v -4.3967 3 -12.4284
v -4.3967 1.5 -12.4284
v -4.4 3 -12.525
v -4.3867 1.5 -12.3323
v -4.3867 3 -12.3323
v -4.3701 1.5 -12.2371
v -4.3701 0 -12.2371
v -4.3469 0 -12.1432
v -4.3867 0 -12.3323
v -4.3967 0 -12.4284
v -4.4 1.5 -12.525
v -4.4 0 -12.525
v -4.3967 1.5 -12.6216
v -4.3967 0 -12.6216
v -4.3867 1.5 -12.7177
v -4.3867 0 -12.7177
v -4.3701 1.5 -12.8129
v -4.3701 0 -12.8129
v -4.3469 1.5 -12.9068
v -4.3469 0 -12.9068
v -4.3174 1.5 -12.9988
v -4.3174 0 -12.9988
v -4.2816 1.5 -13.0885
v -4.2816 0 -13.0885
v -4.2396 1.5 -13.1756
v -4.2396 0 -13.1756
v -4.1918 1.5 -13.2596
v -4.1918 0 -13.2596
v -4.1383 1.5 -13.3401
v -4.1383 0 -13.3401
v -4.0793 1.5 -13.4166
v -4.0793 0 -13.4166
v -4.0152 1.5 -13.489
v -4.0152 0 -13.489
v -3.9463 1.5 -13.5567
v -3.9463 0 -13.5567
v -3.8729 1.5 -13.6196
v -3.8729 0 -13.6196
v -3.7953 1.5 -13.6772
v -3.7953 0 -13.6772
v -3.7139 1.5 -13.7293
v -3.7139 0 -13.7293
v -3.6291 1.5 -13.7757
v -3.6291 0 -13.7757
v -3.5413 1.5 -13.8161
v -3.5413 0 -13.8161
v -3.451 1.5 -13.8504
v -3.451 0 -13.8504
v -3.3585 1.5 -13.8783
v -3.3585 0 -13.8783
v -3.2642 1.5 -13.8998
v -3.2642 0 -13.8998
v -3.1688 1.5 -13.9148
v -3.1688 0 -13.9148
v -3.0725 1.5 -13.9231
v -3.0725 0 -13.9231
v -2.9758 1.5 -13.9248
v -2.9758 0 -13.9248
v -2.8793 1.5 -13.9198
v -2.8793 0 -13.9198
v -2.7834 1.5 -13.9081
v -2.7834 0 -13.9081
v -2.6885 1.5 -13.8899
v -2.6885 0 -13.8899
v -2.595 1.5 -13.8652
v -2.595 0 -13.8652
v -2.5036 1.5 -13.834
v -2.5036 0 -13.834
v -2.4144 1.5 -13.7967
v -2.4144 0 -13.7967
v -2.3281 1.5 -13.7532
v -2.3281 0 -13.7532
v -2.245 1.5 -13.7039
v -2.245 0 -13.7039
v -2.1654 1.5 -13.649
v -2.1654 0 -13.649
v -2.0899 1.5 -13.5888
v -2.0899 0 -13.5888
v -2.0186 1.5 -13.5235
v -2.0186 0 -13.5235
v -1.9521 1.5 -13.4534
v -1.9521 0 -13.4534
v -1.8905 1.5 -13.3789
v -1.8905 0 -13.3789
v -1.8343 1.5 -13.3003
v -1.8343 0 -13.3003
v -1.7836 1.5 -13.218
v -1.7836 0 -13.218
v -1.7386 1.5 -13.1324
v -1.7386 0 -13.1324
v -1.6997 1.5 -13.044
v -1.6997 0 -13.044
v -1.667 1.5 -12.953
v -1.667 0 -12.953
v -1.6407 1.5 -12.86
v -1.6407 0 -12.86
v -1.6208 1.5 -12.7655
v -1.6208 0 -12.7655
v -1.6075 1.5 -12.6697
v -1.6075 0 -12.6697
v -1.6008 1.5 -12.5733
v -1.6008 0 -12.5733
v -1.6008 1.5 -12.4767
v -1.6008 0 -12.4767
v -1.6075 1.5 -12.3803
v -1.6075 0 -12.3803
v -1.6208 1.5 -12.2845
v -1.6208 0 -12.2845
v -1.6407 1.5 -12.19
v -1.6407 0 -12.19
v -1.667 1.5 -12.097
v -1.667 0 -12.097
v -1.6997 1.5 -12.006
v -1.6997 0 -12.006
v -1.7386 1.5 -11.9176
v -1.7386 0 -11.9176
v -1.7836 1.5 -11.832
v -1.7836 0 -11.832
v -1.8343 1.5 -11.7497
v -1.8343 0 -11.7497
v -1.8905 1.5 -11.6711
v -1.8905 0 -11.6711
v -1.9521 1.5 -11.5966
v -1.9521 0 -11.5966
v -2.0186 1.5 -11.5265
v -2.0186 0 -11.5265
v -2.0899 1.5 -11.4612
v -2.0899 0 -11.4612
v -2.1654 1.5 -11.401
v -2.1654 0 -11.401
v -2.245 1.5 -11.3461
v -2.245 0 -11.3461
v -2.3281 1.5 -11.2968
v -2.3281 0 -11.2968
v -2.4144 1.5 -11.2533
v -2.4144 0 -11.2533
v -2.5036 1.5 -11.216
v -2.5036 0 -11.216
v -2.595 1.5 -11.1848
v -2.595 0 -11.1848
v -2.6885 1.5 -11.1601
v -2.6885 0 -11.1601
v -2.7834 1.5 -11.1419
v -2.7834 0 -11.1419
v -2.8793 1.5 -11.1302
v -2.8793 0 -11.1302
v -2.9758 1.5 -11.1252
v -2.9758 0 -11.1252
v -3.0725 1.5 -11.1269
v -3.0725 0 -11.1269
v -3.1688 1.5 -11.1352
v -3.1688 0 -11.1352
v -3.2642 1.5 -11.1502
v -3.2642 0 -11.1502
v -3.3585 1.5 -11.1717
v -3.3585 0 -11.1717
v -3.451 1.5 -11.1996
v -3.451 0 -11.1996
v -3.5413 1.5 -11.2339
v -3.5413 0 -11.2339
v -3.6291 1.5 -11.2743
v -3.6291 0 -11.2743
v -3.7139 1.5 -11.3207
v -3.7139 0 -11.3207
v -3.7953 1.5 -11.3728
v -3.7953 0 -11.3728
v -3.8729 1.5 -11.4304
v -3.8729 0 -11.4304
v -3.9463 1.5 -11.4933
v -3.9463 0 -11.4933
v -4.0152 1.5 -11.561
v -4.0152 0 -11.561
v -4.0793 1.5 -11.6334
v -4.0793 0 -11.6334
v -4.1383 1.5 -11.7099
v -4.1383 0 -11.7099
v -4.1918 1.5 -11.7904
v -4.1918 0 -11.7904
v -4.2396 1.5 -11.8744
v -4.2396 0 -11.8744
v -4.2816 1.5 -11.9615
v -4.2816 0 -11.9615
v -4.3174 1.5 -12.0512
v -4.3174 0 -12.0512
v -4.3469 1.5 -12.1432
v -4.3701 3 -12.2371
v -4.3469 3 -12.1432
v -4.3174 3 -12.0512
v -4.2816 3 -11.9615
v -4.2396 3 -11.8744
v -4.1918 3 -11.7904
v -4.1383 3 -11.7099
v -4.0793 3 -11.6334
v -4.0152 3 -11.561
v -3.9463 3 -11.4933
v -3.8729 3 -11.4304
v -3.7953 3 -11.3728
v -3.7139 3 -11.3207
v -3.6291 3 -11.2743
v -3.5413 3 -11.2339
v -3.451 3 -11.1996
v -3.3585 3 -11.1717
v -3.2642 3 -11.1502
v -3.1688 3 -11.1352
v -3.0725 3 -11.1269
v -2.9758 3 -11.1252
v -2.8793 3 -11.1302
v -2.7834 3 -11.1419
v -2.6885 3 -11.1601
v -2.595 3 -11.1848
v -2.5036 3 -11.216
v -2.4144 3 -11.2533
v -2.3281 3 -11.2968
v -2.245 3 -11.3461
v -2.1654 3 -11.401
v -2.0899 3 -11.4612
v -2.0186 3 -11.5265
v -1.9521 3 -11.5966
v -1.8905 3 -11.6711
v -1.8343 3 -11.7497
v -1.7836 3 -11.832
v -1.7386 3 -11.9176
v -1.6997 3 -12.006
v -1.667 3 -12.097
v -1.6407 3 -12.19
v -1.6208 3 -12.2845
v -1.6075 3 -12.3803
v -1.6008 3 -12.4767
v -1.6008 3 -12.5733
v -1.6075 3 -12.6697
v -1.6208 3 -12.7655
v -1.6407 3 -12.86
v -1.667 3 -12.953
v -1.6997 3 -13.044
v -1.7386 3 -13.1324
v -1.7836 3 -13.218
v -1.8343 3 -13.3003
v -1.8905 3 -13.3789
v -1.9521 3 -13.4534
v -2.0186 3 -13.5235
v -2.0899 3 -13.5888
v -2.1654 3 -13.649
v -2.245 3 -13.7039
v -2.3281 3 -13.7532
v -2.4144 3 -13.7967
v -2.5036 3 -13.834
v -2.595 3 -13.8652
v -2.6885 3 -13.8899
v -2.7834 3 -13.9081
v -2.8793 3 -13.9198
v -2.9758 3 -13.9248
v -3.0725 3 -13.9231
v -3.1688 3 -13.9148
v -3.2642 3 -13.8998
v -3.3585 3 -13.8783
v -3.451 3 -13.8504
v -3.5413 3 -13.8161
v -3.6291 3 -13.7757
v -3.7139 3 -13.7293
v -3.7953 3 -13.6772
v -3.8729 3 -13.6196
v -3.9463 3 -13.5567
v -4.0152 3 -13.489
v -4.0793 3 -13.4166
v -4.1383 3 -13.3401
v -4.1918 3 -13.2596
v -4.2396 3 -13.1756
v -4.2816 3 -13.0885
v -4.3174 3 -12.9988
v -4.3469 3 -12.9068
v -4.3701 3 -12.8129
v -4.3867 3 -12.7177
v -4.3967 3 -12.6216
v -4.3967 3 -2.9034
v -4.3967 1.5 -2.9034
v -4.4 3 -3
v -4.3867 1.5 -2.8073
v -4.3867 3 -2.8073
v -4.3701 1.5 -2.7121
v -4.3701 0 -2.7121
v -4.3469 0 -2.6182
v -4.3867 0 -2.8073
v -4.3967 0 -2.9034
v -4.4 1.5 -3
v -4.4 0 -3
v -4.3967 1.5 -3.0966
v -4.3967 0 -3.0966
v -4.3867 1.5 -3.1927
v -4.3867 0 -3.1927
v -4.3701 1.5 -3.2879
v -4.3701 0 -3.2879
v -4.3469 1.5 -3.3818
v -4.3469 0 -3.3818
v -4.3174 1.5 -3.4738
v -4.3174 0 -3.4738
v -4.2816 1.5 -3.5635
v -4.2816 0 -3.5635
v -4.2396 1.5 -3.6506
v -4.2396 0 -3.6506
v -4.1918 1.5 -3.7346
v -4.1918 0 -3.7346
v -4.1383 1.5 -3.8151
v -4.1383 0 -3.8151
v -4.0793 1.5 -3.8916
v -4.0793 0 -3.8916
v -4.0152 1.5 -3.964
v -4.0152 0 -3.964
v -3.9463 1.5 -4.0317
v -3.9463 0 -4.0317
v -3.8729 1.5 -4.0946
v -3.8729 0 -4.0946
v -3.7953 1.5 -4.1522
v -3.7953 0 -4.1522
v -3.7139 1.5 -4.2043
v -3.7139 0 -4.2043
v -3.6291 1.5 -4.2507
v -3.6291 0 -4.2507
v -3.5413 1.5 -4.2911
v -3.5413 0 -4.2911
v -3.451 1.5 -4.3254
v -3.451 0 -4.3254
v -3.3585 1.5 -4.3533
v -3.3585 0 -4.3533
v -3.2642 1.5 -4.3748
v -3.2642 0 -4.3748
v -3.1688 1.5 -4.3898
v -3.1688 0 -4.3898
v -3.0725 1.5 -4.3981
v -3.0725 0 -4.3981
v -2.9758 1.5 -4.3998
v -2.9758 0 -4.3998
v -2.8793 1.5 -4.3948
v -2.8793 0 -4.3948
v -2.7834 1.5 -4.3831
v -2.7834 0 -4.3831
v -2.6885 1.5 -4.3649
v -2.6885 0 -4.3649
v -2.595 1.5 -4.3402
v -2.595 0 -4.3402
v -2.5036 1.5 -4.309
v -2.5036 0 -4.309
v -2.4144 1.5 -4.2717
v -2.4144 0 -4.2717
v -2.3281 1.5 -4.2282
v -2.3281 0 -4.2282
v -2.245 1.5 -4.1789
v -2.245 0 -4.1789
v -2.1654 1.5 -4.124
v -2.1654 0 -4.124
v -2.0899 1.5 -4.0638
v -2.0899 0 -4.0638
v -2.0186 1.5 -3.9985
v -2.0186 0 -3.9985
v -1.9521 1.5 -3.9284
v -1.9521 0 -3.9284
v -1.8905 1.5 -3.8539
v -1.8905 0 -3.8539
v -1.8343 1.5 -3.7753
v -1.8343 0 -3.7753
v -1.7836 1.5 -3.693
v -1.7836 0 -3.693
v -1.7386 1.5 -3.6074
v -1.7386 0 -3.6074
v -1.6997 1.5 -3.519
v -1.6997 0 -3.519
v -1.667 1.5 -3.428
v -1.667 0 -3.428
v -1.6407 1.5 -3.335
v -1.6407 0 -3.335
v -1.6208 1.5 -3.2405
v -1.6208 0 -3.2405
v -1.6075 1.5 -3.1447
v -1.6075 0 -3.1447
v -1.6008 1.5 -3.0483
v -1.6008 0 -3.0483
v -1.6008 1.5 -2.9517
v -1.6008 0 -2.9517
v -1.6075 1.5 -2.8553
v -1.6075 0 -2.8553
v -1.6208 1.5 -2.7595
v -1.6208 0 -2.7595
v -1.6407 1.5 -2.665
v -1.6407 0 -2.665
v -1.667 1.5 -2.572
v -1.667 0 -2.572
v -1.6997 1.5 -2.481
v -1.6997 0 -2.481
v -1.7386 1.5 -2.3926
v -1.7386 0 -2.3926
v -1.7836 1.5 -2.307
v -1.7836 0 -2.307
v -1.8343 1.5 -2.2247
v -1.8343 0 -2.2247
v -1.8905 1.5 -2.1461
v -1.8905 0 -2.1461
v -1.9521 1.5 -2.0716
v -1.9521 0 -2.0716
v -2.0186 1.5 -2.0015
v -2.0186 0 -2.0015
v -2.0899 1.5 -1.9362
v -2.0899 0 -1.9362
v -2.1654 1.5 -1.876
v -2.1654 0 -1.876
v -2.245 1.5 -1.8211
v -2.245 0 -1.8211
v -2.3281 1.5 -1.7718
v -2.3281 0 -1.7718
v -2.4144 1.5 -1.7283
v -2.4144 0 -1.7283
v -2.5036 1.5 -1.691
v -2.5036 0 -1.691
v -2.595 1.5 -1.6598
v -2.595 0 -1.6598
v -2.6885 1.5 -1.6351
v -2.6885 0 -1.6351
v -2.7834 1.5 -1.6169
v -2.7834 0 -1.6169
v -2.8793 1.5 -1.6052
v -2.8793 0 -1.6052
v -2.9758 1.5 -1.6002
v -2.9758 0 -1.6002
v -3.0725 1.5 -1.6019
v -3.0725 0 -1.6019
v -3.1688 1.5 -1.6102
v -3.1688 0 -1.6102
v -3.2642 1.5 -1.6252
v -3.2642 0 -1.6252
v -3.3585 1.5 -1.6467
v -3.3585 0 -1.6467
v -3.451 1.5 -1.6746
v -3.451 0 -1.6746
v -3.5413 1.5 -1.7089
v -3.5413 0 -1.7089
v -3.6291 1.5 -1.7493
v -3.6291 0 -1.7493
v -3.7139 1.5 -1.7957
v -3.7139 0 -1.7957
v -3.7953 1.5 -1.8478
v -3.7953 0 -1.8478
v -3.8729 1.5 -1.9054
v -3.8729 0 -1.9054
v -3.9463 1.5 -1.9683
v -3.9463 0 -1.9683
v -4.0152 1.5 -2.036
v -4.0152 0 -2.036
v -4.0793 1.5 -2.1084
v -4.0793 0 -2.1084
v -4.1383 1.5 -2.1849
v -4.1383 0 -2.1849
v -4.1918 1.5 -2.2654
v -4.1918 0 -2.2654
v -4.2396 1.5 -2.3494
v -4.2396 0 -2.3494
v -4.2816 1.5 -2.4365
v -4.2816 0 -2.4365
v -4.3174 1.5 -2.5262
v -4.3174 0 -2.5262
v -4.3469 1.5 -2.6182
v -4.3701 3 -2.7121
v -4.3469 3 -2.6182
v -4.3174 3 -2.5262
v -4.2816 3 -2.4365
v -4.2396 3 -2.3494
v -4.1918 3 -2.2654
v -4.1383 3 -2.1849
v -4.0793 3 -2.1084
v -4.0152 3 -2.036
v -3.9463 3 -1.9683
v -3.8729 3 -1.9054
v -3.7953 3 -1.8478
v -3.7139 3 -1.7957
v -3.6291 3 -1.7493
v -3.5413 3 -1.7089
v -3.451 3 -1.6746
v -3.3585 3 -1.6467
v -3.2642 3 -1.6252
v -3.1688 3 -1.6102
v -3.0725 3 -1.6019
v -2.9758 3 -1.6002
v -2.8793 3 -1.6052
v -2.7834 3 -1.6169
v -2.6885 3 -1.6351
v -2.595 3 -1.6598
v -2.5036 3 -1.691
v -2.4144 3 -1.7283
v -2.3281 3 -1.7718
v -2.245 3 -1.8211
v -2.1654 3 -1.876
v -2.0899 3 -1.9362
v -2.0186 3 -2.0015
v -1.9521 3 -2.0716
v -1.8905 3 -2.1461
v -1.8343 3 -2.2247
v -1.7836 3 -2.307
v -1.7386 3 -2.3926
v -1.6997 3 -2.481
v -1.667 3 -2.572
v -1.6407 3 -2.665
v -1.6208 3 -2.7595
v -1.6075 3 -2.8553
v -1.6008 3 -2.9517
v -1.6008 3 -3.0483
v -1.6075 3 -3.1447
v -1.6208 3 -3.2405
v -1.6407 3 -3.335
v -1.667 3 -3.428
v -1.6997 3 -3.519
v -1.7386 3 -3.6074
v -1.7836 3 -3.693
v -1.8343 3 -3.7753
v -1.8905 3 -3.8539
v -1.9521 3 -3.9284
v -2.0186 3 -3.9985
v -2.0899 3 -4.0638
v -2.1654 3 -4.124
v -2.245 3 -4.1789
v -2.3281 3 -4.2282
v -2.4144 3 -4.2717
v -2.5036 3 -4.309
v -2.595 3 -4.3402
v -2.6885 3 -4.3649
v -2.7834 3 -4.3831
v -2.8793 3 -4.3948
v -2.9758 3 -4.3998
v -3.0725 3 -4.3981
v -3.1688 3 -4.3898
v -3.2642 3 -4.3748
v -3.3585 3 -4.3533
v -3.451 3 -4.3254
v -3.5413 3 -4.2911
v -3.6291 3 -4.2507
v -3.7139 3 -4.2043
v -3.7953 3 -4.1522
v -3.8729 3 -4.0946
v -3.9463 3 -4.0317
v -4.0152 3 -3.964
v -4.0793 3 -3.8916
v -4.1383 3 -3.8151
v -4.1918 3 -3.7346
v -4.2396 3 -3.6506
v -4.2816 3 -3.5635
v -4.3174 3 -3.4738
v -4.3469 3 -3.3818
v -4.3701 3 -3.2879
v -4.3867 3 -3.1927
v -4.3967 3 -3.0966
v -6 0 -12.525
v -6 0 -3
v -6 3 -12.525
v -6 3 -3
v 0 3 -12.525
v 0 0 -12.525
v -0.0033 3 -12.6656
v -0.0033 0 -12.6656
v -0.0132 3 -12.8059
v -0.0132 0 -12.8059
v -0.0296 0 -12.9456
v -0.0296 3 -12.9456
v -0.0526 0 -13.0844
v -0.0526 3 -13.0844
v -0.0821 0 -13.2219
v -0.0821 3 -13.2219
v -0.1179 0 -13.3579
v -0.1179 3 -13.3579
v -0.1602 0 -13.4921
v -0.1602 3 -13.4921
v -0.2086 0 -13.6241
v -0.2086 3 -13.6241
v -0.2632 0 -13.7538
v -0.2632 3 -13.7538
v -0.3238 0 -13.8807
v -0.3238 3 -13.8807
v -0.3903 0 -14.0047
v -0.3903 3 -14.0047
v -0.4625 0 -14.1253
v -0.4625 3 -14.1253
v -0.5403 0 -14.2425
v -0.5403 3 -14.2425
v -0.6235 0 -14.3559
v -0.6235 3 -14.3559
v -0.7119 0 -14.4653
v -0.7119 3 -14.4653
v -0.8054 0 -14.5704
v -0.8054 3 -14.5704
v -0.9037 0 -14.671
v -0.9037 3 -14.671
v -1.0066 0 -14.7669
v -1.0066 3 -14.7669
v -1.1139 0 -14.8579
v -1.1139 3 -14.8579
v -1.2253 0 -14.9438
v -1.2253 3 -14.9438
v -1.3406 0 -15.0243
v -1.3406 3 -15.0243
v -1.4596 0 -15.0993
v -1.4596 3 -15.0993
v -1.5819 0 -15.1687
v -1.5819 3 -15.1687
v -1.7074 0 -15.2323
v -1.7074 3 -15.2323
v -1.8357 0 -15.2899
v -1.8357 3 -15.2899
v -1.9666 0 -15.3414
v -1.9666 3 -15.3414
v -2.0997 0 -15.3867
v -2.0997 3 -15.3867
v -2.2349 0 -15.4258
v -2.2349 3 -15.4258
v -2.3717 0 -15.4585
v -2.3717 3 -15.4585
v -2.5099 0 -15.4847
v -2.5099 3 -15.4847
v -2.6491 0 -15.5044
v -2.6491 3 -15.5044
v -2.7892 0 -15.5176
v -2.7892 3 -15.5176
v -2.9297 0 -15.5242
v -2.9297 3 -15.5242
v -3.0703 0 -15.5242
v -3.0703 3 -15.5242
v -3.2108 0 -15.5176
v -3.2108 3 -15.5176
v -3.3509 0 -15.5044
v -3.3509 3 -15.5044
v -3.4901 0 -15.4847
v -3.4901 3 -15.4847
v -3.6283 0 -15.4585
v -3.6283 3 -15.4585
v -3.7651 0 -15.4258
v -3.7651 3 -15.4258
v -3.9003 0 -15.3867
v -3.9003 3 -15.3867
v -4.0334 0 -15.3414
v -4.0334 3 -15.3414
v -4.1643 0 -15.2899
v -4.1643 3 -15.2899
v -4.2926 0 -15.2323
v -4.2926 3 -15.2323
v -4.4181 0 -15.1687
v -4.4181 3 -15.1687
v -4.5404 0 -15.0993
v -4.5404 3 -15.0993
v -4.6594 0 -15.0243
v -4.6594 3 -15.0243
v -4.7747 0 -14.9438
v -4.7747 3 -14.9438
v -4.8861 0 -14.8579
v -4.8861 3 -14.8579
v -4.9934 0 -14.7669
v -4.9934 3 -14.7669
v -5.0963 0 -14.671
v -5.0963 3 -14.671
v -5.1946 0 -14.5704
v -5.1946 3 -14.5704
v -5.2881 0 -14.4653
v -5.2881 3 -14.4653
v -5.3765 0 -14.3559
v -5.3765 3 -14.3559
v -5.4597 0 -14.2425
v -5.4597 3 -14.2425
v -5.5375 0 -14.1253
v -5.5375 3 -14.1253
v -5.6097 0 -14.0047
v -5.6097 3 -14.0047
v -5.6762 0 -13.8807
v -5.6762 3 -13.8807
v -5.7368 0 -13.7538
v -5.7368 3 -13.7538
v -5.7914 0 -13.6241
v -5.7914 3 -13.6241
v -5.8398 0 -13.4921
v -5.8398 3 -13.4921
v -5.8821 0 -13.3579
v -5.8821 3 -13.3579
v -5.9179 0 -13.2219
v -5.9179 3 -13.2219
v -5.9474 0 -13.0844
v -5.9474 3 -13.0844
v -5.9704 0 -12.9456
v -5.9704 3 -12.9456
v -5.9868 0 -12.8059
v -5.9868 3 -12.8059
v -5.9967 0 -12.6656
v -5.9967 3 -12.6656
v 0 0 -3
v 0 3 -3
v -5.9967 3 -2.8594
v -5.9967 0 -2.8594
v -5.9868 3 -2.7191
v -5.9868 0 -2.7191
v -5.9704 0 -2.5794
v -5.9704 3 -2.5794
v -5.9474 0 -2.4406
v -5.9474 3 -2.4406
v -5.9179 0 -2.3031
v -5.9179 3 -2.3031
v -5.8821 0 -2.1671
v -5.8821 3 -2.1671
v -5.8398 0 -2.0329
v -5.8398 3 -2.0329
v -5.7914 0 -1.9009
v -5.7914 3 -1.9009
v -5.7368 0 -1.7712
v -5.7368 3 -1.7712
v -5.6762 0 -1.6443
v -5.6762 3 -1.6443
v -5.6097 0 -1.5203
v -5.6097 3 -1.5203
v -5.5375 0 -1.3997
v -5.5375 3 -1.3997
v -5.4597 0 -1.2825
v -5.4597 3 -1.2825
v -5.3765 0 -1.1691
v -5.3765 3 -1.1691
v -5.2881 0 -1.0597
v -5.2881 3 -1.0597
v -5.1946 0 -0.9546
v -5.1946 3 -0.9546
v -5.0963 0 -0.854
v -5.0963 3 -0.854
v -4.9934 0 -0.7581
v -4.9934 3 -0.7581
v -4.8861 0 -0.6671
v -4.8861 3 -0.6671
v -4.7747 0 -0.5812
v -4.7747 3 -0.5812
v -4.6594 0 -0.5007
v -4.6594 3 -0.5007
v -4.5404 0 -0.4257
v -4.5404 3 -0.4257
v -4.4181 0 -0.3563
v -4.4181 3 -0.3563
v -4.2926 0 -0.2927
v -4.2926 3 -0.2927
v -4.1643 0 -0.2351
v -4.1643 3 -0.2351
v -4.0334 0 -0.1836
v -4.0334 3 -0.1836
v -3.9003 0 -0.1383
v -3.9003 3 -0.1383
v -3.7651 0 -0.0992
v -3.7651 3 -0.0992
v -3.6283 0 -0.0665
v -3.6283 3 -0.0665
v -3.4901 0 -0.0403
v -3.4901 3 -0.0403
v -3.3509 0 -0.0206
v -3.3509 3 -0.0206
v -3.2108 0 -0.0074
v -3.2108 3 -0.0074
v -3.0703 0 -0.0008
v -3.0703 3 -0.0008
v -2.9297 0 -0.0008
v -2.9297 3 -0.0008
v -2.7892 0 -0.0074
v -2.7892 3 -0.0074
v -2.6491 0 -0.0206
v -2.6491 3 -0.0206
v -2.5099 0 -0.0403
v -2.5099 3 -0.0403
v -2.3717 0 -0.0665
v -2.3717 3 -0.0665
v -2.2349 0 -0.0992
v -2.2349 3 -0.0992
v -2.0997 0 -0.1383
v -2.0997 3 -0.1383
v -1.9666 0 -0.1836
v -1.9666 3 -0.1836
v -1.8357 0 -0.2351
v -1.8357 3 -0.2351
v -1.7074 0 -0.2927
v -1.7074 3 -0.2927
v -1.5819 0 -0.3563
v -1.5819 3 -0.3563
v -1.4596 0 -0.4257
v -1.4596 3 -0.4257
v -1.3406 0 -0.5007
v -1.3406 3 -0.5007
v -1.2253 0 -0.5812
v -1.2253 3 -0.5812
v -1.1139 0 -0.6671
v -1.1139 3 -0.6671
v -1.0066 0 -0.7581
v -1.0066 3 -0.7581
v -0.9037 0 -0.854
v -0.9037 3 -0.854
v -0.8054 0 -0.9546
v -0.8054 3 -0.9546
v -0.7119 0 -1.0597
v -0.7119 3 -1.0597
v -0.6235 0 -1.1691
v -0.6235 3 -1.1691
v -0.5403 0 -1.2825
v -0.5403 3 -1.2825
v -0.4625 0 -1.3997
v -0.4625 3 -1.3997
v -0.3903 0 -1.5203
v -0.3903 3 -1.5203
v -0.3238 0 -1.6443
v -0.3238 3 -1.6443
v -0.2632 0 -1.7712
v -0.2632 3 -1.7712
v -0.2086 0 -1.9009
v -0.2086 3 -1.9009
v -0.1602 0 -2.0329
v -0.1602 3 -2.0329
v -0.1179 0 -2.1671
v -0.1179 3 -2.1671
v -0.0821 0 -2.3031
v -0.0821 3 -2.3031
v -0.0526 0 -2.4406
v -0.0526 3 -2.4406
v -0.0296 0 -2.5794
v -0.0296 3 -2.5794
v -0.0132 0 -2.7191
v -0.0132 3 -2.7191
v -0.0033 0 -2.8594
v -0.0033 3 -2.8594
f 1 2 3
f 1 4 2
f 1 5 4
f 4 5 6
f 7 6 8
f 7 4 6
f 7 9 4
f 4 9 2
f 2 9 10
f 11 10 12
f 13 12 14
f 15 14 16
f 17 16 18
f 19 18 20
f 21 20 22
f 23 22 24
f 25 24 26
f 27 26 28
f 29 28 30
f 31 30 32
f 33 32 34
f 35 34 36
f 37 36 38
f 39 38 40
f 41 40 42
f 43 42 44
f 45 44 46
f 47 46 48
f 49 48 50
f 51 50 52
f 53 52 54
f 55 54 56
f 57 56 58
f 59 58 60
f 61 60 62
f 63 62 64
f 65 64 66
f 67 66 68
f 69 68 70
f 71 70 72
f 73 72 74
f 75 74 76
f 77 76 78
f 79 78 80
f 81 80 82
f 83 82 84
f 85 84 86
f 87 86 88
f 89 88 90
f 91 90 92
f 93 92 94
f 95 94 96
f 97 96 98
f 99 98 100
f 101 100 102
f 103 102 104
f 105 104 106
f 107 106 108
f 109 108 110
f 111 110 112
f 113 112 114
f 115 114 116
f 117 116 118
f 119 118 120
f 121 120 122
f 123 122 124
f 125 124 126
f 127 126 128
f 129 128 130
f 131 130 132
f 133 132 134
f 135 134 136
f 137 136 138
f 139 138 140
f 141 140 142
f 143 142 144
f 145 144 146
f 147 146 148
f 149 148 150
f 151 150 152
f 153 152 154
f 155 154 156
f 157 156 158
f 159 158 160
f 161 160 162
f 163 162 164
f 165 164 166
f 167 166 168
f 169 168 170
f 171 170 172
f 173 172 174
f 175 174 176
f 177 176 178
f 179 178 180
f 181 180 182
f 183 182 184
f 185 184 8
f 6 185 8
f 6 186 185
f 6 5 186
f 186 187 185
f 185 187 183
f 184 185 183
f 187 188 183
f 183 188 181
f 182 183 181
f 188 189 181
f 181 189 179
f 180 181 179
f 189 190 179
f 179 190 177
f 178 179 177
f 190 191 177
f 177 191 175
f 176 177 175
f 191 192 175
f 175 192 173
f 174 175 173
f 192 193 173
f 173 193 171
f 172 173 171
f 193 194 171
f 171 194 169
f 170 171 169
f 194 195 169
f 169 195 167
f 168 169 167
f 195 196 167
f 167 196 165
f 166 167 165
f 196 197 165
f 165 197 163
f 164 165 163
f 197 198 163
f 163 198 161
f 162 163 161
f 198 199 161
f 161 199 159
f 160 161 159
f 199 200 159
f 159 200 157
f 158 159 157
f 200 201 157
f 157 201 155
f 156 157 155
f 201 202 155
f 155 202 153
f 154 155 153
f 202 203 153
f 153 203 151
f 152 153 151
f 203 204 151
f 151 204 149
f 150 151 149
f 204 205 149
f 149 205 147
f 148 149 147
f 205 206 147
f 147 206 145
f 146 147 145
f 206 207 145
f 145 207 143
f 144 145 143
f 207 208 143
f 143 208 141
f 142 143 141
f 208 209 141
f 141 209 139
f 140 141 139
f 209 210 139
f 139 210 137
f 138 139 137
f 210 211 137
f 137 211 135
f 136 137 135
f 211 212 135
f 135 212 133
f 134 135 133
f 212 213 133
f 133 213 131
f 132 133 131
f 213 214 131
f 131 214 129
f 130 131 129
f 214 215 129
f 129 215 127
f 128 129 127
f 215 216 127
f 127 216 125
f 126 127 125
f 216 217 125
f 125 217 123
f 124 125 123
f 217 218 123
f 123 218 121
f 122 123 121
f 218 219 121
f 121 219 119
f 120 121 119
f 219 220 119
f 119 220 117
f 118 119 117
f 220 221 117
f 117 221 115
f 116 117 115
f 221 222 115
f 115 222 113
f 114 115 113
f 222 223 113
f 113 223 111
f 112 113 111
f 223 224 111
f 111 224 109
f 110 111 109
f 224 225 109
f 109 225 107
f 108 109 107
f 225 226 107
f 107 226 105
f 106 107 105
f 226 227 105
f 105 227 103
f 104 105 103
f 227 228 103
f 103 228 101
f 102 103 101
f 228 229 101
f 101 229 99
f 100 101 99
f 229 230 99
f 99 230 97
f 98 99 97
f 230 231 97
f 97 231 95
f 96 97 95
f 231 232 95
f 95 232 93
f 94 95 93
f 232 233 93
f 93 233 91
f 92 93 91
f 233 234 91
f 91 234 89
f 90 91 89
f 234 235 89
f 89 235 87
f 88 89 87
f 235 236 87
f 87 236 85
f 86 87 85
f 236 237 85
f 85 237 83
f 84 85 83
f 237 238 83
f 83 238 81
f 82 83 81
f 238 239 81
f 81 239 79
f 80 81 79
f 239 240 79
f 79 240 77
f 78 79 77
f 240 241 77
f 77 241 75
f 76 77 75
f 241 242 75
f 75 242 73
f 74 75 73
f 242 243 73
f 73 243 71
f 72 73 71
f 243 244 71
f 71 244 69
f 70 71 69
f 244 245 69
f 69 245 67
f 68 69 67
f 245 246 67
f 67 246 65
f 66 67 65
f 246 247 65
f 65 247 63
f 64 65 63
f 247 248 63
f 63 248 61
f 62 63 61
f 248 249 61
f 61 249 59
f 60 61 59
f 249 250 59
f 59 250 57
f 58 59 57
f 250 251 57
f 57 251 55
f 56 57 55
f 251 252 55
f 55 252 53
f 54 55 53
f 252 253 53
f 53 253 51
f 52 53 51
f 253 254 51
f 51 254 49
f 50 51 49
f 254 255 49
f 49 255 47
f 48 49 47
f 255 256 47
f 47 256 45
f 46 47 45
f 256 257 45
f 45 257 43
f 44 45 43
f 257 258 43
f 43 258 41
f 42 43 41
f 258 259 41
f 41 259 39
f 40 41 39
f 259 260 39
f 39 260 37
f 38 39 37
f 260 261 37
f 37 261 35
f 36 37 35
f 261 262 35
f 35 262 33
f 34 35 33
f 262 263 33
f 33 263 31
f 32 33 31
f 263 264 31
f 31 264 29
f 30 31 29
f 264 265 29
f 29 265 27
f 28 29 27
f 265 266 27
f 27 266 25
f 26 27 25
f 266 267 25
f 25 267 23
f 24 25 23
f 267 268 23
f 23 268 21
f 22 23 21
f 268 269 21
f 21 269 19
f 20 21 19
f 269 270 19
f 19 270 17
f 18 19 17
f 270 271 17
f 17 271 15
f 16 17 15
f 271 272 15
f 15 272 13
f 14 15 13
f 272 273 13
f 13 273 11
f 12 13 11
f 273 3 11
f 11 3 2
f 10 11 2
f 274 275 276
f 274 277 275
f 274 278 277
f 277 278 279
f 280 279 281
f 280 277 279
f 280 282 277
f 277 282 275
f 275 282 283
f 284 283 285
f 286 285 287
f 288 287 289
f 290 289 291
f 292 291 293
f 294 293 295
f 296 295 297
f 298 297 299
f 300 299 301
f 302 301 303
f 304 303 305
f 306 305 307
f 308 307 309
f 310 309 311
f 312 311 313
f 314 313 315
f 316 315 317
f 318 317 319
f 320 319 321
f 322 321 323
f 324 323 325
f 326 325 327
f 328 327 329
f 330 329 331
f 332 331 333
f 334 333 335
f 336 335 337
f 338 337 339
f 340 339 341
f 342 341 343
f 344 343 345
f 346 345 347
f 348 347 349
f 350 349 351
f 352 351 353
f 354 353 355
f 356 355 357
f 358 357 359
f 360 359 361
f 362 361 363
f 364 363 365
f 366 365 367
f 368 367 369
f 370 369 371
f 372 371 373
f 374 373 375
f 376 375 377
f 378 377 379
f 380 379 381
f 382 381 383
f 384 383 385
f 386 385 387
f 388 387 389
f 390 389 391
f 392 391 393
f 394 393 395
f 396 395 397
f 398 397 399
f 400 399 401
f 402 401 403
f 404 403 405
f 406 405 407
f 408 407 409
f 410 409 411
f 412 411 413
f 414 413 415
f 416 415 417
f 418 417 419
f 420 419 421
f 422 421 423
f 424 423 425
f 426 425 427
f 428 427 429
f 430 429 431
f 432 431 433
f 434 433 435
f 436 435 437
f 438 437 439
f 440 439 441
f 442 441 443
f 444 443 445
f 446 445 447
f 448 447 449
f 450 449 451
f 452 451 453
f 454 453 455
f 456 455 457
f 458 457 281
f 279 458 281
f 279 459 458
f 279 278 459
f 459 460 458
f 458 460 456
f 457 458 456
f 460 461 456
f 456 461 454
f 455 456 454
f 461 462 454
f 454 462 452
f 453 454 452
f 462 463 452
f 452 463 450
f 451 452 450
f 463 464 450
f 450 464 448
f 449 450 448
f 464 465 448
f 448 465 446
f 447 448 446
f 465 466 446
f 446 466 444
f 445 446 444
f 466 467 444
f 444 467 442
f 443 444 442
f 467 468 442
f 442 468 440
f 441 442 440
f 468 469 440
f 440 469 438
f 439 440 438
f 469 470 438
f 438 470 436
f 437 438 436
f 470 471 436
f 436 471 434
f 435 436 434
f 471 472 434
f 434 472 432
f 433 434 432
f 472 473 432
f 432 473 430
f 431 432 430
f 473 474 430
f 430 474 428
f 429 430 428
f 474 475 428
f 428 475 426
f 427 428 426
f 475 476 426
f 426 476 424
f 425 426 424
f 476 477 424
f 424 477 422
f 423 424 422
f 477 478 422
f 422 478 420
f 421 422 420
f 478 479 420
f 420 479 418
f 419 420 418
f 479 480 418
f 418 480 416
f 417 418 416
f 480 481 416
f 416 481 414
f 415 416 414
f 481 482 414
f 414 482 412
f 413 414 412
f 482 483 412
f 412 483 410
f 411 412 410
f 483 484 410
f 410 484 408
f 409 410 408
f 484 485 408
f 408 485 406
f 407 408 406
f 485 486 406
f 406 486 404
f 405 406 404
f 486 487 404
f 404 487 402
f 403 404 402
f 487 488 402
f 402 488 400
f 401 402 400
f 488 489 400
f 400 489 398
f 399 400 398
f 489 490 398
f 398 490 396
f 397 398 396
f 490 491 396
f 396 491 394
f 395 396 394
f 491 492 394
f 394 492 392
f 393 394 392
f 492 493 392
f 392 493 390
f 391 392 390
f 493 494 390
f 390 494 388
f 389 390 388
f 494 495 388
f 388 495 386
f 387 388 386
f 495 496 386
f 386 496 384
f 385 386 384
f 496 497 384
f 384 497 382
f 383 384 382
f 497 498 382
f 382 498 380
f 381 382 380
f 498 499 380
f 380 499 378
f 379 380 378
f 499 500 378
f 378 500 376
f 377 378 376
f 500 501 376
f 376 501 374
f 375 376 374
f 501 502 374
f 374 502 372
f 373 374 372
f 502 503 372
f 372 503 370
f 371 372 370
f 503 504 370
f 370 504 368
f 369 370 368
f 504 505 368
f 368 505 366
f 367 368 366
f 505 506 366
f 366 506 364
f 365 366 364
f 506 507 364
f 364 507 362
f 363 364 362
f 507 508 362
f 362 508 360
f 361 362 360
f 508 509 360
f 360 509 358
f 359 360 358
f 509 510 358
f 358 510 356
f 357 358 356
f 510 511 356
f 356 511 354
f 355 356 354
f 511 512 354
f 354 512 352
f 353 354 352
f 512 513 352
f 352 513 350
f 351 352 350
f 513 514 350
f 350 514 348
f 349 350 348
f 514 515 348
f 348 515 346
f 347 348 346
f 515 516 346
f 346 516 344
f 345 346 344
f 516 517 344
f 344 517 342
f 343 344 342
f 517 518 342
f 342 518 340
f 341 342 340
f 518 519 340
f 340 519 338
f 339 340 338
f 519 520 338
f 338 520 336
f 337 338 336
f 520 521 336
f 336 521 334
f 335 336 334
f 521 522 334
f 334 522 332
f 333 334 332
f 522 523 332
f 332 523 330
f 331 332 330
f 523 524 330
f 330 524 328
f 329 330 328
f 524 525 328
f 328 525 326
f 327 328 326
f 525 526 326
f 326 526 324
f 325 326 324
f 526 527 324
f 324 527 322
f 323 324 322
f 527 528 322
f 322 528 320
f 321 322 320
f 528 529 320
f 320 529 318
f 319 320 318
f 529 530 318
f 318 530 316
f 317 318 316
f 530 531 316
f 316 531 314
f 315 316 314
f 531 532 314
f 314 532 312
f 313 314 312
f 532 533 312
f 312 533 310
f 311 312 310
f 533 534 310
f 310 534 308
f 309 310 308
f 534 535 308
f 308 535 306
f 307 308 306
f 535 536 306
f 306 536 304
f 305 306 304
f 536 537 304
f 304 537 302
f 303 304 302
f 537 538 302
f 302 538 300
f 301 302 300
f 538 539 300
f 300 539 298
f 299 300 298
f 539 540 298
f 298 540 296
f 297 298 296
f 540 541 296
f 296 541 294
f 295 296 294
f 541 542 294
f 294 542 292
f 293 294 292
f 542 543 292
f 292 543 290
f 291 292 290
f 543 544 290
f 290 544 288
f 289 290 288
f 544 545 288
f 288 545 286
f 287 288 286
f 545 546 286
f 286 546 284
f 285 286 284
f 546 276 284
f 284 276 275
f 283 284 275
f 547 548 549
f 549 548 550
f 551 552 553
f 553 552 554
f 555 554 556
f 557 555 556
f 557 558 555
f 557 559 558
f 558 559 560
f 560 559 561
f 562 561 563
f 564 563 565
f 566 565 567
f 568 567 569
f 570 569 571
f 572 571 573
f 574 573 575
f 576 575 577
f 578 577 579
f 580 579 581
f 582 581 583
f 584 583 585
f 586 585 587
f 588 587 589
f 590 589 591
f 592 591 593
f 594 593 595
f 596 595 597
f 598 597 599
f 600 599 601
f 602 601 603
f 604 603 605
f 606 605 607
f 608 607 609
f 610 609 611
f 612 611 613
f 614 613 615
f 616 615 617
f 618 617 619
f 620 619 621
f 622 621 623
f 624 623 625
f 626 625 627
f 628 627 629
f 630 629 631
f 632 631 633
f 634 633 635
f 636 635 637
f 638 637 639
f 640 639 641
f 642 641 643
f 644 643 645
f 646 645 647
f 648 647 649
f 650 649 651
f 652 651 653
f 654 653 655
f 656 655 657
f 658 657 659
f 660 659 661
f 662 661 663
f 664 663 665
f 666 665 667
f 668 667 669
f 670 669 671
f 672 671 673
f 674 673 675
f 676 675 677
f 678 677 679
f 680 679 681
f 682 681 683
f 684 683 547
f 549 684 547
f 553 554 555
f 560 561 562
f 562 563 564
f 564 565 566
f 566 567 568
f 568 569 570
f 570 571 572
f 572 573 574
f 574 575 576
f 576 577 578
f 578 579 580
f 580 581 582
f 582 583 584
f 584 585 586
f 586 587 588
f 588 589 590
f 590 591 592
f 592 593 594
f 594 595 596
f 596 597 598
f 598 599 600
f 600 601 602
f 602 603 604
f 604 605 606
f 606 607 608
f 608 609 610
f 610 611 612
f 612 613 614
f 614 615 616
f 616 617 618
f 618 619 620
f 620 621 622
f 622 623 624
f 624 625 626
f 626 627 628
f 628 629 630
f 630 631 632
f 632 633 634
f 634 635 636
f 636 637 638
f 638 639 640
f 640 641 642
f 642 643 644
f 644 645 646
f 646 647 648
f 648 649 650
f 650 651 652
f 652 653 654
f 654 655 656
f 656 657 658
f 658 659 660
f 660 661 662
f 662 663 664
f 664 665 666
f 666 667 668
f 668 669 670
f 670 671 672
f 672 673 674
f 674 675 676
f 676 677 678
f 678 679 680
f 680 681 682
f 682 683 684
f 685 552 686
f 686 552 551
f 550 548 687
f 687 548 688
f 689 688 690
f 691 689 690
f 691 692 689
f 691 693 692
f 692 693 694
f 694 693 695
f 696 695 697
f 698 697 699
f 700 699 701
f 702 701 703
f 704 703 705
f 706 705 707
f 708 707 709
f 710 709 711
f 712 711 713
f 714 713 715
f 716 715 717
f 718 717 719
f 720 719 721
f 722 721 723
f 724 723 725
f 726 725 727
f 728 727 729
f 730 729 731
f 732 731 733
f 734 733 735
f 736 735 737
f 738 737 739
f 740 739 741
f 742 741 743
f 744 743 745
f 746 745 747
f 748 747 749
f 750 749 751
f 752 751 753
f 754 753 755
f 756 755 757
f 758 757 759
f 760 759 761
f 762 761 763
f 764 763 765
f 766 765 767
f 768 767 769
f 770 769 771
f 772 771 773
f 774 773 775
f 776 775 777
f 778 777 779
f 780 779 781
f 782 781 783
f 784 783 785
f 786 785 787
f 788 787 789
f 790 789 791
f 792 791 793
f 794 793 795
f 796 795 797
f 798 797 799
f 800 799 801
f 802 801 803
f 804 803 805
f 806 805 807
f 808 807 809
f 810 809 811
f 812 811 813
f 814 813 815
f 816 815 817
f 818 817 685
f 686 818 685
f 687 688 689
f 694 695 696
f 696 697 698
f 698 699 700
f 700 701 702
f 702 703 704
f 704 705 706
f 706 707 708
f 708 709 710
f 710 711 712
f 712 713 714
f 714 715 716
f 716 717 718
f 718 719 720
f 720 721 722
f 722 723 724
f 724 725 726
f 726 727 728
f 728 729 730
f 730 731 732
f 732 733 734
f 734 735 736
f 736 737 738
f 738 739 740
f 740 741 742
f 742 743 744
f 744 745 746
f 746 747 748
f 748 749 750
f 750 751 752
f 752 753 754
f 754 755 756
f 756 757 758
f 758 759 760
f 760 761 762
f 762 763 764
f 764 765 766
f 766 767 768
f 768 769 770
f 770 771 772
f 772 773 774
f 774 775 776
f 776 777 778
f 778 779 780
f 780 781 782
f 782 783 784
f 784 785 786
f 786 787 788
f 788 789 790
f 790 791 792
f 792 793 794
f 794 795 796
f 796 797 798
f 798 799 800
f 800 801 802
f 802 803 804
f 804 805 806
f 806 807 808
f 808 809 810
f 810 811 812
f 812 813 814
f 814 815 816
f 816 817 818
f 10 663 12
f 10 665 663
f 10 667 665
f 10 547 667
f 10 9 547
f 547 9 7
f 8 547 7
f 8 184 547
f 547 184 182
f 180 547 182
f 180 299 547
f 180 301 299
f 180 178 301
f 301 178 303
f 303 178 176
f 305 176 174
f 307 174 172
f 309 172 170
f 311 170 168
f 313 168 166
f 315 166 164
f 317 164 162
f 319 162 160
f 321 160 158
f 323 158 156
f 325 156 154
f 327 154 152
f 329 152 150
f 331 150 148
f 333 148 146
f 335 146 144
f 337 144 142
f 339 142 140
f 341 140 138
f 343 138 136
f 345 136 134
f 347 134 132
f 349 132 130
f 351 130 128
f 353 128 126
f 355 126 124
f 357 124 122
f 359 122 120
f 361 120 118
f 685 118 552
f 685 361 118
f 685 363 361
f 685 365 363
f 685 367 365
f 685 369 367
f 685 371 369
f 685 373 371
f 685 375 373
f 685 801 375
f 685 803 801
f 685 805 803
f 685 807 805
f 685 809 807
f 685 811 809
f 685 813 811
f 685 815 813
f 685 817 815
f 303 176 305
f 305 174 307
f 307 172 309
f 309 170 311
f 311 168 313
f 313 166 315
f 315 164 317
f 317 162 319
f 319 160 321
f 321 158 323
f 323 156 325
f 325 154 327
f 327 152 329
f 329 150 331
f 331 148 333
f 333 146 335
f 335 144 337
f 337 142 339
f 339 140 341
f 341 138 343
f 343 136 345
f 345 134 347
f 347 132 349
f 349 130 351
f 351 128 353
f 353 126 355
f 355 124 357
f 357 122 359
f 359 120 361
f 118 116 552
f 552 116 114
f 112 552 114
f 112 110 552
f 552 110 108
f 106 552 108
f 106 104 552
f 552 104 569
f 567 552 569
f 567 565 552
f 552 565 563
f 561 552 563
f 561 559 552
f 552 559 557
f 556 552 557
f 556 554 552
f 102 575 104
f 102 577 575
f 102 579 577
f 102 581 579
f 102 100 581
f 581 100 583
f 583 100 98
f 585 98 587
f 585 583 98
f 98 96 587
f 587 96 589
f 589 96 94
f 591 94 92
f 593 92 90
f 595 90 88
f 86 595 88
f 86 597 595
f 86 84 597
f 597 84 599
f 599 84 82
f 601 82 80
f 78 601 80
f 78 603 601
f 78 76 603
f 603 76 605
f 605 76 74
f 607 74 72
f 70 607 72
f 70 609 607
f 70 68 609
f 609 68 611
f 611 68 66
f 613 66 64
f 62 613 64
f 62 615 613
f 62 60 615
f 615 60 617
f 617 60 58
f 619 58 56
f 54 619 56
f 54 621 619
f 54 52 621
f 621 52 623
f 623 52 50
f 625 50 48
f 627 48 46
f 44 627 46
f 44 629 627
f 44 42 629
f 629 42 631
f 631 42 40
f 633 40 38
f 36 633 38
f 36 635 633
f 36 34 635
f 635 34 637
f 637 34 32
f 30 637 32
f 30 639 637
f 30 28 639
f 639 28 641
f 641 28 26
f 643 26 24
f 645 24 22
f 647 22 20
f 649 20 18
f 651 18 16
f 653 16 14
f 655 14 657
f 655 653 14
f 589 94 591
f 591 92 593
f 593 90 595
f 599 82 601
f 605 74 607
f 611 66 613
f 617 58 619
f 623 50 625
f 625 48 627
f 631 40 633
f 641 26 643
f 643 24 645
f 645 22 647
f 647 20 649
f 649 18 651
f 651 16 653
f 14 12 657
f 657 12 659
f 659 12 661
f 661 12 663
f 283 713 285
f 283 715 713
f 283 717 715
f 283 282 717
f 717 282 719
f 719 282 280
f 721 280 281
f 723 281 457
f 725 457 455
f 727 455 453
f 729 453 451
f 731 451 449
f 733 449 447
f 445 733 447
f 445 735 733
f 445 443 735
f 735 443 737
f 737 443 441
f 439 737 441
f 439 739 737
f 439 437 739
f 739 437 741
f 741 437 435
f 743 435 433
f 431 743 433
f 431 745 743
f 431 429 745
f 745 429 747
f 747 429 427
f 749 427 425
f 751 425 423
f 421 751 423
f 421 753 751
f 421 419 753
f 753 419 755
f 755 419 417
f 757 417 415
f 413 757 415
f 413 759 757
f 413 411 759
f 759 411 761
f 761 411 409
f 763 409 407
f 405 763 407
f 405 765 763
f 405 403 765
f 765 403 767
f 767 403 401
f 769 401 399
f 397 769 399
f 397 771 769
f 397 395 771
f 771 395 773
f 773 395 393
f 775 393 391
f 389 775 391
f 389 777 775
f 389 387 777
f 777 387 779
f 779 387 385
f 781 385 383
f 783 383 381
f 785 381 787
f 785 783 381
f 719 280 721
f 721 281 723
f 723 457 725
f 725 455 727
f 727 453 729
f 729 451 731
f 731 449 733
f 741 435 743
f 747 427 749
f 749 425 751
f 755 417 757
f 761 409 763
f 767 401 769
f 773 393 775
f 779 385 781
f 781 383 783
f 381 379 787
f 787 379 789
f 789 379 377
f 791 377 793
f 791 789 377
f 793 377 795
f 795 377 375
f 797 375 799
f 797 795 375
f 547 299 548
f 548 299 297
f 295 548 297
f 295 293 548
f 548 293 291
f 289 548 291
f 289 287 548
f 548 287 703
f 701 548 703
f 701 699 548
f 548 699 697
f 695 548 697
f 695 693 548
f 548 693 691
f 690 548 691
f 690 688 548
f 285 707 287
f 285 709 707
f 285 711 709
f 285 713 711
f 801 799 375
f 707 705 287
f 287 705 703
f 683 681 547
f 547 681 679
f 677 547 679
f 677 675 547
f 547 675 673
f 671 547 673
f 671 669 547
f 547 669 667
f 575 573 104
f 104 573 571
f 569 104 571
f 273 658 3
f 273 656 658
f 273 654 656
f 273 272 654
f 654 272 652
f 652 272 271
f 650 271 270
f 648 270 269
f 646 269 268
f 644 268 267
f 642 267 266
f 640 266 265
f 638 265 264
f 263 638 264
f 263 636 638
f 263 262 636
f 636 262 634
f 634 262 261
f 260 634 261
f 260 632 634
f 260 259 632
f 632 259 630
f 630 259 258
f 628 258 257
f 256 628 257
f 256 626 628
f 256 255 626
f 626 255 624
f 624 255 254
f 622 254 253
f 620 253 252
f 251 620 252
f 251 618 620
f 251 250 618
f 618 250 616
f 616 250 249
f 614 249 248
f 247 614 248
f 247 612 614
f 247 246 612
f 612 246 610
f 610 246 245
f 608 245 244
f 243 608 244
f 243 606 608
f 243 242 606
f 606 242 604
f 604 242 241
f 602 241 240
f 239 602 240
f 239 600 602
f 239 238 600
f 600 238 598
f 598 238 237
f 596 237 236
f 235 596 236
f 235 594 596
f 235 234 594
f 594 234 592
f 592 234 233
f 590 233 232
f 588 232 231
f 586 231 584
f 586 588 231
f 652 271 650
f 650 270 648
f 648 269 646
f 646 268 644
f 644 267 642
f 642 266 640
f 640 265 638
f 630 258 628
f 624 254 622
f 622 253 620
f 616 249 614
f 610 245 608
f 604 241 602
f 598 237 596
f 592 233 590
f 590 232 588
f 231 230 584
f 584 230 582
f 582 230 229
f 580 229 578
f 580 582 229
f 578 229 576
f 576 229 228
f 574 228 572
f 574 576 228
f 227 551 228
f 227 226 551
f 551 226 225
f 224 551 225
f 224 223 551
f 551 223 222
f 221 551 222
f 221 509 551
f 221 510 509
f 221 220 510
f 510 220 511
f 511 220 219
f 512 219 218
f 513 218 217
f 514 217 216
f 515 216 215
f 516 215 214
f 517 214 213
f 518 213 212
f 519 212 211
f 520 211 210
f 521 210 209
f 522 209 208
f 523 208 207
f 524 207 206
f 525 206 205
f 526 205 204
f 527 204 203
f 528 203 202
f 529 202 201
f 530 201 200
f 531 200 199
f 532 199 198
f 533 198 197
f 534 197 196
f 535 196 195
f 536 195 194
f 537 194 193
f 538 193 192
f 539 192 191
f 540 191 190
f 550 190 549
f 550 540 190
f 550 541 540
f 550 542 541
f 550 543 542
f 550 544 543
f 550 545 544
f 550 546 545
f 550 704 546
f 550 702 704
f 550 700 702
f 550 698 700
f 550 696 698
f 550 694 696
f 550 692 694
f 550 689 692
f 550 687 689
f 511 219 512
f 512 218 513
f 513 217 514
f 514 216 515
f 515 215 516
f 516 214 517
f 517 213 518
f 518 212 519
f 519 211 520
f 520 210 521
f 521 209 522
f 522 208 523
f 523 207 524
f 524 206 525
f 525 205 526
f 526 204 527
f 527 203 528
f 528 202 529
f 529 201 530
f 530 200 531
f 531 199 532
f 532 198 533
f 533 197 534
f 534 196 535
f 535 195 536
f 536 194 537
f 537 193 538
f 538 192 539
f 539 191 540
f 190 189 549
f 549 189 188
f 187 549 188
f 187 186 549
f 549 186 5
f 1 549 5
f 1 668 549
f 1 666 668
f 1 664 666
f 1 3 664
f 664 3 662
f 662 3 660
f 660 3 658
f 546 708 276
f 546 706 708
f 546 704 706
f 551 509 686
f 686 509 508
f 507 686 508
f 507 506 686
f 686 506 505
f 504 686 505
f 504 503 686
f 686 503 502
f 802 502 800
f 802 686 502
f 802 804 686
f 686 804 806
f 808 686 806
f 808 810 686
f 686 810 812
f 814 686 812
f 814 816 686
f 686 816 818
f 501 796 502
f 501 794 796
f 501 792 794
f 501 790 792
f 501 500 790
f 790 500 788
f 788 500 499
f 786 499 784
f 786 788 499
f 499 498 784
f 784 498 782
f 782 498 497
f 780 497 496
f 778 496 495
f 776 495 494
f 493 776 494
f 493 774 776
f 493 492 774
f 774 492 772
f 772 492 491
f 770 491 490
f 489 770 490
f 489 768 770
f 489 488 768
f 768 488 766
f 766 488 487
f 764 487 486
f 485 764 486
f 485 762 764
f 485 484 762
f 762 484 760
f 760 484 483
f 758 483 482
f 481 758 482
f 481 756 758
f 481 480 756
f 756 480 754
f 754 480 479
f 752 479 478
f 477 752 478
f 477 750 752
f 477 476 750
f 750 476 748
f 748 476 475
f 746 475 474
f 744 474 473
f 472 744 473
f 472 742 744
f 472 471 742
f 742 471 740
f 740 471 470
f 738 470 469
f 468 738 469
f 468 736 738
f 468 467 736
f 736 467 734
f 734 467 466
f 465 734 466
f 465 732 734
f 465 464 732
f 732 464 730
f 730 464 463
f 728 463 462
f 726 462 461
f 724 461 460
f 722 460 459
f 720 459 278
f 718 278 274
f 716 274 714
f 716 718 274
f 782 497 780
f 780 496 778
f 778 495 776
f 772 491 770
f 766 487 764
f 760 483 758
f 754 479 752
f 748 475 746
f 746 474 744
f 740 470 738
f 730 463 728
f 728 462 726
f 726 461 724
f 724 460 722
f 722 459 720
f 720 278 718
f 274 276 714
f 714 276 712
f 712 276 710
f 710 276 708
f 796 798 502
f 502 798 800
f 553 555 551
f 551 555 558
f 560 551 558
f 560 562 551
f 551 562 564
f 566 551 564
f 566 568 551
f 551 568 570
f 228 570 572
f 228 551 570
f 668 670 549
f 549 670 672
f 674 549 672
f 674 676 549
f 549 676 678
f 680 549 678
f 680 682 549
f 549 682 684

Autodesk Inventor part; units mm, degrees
ref_plane "YZ Plane" through (0, 0, 0) normal (1, 0, 0) x (0, 1, 0)
ref_plane "XZ Plane" through (0, 0, 0) normal (0, 1, 0) x (-1, 0, 0)
ref_plane "XY Plane" through (0, 0, 0) normal (0, 0, 1) x (1, 0, 0)
sketch "Sketch1" plane through (0, 0, 0) normal (0, 1, 0) x (-1, 0, 0)
  line L0 (3, 0) -> (3, 0)
  line L1 (6, -3) -> (6, -12.525)
  line L2 (3, -15.525) -> (3, -15.525)
  line L3 (0, -12.525) -> (0, -3)
  arc A0 (6, -3) -> (3, 0) centre (3, -3) ccw
  arc A1 (3, 0) -> (0, -3) centre (3, -3) ccw
  arc A2 (3, -15.525) -> (6, -12.525) centre (3, -12.525) ccw
  arc A3 (0, -12.525) -> (3, -15.525) centre (3, -12.525) ccw
  circle A4 centre (3, -3) radius 1.4
  circle A5 centre (3, -12.525) radius 1.4
  point P0 (0, 0)
  point P1 (6, -15.525)
  point P2 (6, 0)
  point P3 (0, -15.525)
  dimension "d0" = 6
  dimension "d1" = 15.525
  dimension "d2" = 3
  dimension "d3" = 2.8
  dimension "d4" = 2.8
extrude "Extrusion1" add sketch "Sketch1" along normal blind 3
properties part number "tracks_outer"
